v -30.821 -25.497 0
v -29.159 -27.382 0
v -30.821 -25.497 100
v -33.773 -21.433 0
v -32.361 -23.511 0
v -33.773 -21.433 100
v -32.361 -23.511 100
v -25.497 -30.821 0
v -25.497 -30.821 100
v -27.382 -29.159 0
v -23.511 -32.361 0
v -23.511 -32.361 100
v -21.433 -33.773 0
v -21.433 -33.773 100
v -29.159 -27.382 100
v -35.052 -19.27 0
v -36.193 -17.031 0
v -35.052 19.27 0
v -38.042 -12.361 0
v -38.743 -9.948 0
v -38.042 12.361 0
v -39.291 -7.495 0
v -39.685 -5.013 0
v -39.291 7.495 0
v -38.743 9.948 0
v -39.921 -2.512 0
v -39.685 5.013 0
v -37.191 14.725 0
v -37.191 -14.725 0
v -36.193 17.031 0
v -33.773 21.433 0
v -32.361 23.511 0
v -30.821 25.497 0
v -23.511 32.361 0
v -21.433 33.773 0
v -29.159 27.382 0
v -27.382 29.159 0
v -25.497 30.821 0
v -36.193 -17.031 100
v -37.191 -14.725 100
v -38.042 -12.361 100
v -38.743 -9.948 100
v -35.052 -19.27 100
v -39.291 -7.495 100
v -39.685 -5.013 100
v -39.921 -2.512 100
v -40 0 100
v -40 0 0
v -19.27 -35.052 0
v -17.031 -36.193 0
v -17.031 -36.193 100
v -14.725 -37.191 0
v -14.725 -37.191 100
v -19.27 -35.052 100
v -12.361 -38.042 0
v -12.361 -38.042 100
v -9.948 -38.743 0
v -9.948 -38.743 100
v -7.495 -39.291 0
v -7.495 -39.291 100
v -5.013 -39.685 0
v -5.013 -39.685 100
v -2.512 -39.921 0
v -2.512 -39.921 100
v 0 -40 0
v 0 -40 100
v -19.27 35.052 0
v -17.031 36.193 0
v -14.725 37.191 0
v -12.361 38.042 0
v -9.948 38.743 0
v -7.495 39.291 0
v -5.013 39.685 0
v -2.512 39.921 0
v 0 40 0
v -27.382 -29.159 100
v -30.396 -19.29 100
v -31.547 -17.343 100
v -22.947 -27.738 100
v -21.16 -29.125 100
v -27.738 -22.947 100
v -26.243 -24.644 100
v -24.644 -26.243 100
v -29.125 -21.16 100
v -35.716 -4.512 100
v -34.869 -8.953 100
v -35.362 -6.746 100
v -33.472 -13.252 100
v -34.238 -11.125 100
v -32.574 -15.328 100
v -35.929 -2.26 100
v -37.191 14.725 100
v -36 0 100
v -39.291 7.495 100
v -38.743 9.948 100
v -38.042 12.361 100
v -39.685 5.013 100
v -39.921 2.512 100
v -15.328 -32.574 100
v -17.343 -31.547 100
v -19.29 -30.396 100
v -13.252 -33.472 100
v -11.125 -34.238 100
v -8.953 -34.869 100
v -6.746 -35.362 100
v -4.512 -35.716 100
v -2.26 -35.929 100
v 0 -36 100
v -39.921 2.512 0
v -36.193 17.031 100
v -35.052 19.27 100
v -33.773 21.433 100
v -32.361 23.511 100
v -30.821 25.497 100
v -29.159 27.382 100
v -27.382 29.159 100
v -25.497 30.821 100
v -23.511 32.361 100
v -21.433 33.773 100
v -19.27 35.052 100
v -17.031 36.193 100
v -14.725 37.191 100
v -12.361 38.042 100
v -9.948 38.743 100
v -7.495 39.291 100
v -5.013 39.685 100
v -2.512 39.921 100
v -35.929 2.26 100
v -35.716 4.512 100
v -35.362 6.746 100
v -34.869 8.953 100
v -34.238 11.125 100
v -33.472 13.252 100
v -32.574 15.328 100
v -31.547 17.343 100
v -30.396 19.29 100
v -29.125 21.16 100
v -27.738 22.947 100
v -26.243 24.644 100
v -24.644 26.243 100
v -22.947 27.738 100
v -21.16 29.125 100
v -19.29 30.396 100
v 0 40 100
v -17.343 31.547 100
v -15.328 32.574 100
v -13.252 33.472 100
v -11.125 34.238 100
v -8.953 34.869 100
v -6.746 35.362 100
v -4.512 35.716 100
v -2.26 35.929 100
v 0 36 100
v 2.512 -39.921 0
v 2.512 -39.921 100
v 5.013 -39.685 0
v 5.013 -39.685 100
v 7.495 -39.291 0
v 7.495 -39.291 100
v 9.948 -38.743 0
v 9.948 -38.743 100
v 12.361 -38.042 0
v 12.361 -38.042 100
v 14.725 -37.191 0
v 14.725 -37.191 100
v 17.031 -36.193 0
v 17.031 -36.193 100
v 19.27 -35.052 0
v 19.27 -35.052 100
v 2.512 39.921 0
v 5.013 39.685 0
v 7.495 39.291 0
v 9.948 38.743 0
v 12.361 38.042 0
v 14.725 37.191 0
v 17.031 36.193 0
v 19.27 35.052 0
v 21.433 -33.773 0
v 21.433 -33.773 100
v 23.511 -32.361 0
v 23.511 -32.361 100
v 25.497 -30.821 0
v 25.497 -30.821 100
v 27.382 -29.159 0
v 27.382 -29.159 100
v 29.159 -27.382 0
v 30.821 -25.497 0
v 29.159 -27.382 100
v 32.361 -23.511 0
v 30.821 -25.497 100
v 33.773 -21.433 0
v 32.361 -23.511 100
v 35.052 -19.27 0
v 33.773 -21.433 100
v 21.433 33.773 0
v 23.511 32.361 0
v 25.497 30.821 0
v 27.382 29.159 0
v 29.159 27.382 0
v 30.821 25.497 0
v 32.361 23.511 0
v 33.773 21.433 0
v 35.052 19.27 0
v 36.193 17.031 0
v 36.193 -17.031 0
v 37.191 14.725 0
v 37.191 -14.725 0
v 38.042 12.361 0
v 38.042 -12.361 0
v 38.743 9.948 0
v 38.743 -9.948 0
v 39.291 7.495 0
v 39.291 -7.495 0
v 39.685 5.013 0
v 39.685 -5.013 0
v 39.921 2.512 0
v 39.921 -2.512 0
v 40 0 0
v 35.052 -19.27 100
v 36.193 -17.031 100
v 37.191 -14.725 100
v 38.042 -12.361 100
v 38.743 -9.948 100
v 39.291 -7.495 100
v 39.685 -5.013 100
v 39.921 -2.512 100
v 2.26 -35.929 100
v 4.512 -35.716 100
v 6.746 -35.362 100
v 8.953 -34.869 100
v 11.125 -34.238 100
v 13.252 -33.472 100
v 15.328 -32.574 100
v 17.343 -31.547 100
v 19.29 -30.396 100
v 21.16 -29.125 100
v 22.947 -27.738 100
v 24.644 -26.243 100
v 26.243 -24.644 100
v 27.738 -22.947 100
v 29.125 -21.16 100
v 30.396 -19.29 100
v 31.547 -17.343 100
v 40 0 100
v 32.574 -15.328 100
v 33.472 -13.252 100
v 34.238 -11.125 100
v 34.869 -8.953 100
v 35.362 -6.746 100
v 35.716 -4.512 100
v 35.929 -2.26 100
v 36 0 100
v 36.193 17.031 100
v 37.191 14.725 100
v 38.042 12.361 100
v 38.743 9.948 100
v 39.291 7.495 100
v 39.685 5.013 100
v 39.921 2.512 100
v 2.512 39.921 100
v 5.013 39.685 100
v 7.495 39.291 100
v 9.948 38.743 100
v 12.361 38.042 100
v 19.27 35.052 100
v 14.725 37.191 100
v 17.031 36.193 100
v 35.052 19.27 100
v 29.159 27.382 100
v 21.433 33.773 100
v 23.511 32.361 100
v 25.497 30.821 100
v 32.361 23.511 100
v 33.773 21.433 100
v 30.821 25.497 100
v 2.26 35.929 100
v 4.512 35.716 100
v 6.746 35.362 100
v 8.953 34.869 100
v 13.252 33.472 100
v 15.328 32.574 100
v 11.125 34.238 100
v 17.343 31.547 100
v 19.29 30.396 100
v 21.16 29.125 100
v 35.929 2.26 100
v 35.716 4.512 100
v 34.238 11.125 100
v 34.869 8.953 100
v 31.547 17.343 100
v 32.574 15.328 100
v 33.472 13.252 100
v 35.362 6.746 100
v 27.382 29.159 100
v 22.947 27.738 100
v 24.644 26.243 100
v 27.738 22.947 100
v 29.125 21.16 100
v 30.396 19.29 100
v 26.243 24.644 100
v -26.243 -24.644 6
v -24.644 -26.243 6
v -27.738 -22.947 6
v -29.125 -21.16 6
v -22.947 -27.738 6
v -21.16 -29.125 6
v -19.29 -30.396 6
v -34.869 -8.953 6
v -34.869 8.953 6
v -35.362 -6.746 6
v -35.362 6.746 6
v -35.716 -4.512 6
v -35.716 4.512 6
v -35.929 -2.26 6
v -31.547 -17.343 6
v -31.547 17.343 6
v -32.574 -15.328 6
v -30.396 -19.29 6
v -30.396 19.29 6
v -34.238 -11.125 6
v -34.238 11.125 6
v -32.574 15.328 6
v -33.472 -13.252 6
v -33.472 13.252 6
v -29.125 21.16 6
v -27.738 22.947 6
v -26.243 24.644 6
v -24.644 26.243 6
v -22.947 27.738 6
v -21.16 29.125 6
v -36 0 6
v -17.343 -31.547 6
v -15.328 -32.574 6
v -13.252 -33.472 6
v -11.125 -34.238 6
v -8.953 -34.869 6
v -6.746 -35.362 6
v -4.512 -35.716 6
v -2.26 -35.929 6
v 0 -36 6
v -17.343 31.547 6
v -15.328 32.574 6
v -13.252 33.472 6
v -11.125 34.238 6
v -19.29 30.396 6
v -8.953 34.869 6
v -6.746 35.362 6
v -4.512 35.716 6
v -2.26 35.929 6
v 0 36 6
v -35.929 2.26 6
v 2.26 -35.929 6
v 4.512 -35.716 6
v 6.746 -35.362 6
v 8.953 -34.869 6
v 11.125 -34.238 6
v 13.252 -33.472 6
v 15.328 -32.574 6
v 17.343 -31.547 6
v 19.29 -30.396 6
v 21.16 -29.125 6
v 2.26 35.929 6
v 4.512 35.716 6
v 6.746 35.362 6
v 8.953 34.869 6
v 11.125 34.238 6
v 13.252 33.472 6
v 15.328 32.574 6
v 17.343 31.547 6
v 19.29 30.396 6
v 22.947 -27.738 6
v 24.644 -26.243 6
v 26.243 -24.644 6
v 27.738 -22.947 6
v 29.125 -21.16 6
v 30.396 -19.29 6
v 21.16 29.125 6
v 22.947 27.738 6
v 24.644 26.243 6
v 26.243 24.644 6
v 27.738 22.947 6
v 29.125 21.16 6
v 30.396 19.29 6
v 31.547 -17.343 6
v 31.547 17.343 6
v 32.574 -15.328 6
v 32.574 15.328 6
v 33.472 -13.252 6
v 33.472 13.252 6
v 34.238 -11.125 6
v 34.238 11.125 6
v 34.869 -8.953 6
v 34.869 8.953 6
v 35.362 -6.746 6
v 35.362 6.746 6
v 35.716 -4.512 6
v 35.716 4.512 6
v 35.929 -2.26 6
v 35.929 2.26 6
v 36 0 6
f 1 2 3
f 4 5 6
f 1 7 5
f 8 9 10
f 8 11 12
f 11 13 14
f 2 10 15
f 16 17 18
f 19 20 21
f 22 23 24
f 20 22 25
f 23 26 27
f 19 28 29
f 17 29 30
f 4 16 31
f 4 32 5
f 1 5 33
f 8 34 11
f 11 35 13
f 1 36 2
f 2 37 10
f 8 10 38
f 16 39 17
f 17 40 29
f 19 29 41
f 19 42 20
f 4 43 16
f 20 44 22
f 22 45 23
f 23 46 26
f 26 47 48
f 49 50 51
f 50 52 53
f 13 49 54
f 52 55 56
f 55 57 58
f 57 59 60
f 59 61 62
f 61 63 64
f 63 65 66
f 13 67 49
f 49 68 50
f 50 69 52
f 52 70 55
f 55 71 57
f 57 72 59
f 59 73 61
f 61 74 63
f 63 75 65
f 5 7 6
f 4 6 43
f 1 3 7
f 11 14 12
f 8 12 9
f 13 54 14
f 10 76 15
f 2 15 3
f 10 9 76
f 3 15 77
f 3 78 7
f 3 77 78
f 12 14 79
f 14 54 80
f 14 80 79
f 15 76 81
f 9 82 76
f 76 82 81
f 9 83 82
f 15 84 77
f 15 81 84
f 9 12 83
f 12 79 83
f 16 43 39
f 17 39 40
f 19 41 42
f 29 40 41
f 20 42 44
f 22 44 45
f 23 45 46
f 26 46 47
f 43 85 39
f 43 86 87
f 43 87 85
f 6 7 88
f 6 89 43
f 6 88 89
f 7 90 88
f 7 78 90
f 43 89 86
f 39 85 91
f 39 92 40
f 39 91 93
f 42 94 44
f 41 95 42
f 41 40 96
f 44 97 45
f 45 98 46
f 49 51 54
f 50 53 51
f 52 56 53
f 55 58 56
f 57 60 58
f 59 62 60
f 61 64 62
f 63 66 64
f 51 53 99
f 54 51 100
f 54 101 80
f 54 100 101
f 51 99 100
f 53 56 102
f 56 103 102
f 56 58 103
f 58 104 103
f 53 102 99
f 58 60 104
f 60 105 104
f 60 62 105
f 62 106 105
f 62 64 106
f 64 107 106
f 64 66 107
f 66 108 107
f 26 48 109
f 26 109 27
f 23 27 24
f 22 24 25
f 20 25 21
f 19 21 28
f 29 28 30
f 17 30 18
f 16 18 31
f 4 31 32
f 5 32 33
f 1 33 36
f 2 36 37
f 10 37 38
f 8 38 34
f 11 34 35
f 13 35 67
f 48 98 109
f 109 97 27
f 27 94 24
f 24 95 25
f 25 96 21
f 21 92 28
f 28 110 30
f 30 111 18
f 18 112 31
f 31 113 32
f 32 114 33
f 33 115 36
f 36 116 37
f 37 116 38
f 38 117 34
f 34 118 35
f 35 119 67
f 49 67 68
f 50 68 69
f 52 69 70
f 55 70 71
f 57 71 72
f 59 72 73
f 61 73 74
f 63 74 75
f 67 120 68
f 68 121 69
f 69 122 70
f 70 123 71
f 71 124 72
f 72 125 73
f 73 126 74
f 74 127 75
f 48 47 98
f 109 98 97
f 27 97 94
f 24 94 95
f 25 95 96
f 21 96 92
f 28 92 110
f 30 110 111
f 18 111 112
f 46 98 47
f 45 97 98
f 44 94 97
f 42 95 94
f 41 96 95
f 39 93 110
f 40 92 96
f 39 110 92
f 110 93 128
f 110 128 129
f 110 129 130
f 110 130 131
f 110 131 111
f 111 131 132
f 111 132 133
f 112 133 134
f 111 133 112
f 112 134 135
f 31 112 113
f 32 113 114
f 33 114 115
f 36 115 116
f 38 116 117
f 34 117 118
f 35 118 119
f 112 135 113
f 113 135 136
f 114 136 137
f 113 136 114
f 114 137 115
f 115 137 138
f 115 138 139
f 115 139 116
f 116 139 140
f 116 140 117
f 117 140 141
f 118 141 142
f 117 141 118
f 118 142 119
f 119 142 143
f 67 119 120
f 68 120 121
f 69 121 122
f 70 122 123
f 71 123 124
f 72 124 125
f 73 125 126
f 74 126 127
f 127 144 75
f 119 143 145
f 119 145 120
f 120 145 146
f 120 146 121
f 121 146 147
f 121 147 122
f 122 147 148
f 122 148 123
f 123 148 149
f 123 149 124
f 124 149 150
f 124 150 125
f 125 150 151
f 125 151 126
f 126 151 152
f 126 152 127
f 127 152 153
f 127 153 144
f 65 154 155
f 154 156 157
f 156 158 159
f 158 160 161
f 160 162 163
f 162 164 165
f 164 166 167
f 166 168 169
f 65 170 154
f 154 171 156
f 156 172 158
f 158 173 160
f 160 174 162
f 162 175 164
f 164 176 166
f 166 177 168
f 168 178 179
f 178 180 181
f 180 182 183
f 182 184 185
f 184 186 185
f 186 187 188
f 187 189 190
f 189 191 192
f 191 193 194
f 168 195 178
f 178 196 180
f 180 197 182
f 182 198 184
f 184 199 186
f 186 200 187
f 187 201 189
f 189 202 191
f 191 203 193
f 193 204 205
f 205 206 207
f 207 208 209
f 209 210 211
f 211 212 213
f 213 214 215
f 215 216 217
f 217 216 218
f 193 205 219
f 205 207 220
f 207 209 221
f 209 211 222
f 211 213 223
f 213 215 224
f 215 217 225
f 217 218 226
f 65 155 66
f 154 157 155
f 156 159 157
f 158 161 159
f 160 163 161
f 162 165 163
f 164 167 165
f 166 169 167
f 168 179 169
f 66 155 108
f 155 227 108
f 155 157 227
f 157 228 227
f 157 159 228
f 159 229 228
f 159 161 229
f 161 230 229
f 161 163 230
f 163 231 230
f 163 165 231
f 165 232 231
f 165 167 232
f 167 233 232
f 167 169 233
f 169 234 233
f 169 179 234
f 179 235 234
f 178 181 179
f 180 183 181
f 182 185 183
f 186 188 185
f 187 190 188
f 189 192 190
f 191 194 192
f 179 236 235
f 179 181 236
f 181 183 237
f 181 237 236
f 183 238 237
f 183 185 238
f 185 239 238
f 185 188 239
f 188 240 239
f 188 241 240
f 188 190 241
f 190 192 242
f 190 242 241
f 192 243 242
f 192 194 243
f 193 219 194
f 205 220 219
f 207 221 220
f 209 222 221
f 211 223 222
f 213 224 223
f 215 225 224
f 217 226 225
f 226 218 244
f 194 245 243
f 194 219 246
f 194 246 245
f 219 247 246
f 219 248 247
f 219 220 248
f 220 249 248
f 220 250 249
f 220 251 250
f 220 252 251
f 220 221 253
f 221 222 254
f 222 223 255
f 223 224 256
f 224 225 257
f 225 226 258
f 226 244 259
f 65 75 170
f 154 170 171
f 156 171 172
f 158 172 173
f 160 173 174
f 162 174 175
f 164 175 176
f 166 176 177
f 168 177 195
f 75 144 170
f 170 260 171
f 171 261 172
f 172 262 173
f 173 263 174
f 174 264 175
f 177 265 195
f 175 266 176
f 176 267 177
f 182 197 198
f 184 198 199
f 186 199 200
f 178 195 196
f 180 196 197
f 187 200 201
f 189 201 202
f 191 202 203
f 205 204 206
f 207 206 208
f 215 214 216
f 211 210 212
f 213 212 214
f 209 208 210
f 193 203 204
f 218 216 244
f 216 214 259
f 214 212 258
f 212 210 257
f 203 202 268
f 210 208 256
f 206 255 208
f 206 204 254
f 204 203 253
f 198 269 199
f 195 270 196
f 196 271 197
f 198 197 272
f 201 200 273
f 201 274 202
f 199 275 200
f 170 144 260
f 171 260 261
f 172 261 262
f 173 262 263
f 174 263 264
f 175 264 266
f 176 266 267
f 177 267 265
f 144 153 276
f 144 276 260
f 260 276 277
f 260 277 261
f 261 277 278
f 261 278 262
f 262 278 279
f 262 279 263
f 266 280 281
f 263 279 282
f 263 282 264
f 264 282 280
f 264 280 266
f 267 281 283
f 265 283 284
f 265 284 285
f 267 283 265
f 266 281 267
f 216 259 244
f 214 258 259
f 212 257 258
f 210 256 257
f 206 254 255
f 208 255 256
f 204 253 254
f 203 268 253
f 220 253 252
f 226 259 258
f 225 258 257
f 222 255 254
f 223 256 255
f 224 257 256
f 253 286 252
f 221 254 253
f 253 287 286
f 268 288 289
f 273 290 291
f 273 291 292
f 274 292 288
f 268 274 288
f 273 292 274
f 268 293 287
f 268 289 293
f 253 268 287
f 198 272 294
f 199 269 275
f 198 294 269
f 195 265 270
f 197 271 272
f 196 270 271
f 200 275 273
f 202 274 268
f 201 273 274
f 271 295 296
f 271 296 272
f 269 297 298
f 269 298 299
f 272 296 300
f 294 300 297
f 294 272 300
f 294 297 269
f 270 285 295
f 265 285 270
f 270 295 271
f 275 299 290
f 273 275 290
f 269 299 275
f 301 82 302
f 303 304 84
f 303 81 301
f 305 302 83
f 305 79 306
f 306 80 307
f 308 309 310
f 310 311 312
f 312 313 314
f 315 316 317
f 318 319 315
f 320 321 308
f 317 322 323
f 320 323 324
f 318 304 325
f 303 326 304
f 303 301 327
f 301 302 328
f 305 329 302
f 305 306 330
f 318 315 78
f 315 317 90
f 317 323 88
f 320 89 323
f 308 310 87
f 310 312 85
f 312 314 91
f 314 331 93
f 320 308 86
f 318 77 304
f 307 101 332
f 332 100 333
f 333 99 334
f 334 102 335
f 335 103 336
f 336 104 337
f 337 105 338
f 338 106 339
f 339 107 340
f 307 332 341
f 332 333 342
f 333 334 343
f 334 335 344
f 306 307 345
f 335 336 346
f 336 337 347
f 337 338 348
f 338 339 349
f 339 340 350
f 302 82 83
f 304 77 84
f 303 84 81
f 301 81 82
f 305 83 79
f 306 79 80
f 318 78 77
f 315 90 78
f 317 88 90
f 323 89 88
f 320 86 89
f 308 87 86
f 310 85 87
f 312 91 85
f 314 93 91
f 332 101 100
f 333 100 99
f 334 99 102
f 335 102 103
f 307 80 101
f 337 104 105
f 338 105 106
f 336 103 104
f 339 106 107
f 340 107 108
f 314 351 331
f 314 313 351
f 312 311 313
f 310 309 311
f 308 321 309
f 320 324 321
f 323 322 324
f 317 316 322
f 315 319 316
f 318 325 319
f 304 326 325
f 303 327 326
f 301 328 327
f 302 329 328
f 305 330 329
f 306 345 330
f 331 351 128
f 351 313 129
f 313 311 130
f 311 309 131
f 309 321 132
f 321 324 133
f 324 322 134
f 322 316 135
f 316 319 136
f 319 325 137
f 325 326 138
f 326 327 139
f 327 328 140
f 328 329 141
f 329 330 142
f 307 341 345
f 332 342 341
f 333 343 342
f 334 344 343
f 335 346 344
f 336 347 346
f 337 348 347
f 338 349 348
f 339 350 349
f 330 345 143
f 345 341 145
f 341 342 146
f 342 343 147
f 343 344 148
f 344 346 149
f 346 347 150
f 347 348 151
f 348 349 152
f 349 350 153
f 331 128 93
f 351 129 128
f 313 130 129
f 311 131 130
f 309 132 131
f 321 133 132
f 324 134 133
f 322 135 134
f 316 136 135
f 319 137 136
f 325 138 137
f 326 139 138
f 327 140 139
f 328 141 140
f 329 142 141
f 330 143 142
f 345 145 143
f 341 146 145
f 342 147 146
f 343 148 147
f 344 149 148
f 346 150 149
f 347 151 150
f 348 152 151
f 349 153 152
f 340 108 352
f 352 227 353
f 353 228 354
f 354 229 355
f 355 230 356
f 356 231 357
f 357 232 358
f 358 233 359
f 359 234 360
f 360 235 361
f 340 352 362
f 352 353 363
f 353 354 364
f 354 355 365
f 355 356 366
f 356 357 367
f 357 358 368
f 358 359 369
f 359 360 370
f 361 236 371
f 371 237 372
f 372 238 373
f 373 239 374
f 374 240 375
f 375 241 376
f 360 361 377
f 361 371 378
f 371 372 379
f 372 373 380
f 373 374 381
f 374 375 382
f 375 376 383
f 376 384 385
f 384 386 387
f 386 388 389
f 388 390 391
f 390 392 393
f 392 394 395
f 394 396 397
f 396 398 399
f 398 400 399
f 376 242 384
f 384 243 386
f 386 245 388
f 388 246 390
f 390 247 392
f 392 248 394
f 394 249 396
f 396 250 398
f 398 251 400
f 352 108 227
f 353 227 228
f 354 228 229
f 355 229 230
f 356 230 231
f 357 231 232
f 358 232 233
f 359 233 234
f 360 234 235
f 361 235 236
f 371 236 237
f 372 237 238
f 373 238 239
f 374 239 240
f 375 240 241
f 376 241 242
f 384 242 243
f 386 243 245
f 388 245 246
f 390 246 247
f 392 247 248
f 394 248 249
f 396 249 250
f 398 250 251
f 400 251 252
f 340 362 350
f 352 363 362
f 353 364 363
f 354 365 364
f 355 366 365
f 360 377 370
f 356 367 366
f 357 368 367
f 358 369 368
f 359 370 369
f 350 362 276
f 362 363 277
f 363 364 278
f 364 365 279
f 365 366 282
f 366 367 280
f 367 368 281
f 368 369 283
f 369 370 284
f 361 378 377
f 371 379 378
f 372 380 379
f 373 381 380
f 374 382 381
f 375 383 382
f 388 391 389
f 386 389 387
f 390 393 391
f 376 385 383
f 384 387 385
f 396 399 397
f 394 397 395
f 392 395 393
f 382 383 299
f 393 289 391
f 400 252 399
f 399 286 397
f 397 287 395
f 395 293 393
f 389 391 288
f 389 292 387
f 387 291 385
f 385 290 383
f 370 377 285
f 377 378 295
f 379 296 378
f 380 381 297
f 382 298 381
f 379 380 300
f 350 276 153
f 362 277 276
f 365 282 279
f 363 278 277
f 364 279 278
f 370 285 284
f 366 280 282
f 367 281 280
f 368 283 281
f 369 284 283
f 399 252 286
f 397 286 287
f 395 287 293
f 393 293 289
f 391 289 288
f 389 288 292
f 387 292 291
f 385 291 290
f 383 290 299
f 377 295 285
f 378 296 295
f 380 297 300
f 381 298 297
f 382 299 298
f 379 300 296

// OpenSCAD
// マグカップのパラメータ
outer_diameter = 80;      // 外径
outer_radius = outer_diameter / 2;
height = 100;             // 高さ
wall_thickness = 4;      // 肉厚
bottom_thickness = 6;    // 底面の厚み
inner_radius = outer_radius - wall_thickness;
inner_height = height - bottom_thickness;

// 取手のパラメータ
handle_tube_radius = 6;      // 取手の太さ(チューブの半径)
handle_ring_radius = 22;     // 取手リングの半径(指が通る大きさ)
handle_z = height / 2;       // 取手の取付け高さ(中心高さ)

$fn = 100;

// カップ本体
module cup_body() {
    difference() {
        // 外形
        cylinder(h = height, r = outer_radius);
        // 内側くり抜き
        translate([0, 0, bottom_thickness])
            cylinder(h = inner_height + 1, r = inner_radius);
    }
}

// 取手(リング状)
// リングの穴が外周方向(指を横から通せる向き)に開くように配置
module handle() {
    // リングの中心をカップ外周に重なる位置に置き、
    // リング面を垂直(XZ平面)に立てて指穴を作る
    translate([outer_radius, 0, handle_z])
        rotate([0, 0, 0])
            rotate_extrude(angle = 360)
                translate([handle_ring_radius, 0, 0])
                    circle(r = handle_tube_radius);
}

// 全体の組み立て
union() {
    cup_body();
    // 取手はカップ外周から外側にはみ出すように配置し、
    // 本体と確実に結合させる
    intersection_for_union();
}

// 取手をカップにめり込ませず、外側に開いたリングとして付ける
module intersection_for_union() {
    // 何もしない(下で直接 union 内に記述する代わりのダミー)
}
